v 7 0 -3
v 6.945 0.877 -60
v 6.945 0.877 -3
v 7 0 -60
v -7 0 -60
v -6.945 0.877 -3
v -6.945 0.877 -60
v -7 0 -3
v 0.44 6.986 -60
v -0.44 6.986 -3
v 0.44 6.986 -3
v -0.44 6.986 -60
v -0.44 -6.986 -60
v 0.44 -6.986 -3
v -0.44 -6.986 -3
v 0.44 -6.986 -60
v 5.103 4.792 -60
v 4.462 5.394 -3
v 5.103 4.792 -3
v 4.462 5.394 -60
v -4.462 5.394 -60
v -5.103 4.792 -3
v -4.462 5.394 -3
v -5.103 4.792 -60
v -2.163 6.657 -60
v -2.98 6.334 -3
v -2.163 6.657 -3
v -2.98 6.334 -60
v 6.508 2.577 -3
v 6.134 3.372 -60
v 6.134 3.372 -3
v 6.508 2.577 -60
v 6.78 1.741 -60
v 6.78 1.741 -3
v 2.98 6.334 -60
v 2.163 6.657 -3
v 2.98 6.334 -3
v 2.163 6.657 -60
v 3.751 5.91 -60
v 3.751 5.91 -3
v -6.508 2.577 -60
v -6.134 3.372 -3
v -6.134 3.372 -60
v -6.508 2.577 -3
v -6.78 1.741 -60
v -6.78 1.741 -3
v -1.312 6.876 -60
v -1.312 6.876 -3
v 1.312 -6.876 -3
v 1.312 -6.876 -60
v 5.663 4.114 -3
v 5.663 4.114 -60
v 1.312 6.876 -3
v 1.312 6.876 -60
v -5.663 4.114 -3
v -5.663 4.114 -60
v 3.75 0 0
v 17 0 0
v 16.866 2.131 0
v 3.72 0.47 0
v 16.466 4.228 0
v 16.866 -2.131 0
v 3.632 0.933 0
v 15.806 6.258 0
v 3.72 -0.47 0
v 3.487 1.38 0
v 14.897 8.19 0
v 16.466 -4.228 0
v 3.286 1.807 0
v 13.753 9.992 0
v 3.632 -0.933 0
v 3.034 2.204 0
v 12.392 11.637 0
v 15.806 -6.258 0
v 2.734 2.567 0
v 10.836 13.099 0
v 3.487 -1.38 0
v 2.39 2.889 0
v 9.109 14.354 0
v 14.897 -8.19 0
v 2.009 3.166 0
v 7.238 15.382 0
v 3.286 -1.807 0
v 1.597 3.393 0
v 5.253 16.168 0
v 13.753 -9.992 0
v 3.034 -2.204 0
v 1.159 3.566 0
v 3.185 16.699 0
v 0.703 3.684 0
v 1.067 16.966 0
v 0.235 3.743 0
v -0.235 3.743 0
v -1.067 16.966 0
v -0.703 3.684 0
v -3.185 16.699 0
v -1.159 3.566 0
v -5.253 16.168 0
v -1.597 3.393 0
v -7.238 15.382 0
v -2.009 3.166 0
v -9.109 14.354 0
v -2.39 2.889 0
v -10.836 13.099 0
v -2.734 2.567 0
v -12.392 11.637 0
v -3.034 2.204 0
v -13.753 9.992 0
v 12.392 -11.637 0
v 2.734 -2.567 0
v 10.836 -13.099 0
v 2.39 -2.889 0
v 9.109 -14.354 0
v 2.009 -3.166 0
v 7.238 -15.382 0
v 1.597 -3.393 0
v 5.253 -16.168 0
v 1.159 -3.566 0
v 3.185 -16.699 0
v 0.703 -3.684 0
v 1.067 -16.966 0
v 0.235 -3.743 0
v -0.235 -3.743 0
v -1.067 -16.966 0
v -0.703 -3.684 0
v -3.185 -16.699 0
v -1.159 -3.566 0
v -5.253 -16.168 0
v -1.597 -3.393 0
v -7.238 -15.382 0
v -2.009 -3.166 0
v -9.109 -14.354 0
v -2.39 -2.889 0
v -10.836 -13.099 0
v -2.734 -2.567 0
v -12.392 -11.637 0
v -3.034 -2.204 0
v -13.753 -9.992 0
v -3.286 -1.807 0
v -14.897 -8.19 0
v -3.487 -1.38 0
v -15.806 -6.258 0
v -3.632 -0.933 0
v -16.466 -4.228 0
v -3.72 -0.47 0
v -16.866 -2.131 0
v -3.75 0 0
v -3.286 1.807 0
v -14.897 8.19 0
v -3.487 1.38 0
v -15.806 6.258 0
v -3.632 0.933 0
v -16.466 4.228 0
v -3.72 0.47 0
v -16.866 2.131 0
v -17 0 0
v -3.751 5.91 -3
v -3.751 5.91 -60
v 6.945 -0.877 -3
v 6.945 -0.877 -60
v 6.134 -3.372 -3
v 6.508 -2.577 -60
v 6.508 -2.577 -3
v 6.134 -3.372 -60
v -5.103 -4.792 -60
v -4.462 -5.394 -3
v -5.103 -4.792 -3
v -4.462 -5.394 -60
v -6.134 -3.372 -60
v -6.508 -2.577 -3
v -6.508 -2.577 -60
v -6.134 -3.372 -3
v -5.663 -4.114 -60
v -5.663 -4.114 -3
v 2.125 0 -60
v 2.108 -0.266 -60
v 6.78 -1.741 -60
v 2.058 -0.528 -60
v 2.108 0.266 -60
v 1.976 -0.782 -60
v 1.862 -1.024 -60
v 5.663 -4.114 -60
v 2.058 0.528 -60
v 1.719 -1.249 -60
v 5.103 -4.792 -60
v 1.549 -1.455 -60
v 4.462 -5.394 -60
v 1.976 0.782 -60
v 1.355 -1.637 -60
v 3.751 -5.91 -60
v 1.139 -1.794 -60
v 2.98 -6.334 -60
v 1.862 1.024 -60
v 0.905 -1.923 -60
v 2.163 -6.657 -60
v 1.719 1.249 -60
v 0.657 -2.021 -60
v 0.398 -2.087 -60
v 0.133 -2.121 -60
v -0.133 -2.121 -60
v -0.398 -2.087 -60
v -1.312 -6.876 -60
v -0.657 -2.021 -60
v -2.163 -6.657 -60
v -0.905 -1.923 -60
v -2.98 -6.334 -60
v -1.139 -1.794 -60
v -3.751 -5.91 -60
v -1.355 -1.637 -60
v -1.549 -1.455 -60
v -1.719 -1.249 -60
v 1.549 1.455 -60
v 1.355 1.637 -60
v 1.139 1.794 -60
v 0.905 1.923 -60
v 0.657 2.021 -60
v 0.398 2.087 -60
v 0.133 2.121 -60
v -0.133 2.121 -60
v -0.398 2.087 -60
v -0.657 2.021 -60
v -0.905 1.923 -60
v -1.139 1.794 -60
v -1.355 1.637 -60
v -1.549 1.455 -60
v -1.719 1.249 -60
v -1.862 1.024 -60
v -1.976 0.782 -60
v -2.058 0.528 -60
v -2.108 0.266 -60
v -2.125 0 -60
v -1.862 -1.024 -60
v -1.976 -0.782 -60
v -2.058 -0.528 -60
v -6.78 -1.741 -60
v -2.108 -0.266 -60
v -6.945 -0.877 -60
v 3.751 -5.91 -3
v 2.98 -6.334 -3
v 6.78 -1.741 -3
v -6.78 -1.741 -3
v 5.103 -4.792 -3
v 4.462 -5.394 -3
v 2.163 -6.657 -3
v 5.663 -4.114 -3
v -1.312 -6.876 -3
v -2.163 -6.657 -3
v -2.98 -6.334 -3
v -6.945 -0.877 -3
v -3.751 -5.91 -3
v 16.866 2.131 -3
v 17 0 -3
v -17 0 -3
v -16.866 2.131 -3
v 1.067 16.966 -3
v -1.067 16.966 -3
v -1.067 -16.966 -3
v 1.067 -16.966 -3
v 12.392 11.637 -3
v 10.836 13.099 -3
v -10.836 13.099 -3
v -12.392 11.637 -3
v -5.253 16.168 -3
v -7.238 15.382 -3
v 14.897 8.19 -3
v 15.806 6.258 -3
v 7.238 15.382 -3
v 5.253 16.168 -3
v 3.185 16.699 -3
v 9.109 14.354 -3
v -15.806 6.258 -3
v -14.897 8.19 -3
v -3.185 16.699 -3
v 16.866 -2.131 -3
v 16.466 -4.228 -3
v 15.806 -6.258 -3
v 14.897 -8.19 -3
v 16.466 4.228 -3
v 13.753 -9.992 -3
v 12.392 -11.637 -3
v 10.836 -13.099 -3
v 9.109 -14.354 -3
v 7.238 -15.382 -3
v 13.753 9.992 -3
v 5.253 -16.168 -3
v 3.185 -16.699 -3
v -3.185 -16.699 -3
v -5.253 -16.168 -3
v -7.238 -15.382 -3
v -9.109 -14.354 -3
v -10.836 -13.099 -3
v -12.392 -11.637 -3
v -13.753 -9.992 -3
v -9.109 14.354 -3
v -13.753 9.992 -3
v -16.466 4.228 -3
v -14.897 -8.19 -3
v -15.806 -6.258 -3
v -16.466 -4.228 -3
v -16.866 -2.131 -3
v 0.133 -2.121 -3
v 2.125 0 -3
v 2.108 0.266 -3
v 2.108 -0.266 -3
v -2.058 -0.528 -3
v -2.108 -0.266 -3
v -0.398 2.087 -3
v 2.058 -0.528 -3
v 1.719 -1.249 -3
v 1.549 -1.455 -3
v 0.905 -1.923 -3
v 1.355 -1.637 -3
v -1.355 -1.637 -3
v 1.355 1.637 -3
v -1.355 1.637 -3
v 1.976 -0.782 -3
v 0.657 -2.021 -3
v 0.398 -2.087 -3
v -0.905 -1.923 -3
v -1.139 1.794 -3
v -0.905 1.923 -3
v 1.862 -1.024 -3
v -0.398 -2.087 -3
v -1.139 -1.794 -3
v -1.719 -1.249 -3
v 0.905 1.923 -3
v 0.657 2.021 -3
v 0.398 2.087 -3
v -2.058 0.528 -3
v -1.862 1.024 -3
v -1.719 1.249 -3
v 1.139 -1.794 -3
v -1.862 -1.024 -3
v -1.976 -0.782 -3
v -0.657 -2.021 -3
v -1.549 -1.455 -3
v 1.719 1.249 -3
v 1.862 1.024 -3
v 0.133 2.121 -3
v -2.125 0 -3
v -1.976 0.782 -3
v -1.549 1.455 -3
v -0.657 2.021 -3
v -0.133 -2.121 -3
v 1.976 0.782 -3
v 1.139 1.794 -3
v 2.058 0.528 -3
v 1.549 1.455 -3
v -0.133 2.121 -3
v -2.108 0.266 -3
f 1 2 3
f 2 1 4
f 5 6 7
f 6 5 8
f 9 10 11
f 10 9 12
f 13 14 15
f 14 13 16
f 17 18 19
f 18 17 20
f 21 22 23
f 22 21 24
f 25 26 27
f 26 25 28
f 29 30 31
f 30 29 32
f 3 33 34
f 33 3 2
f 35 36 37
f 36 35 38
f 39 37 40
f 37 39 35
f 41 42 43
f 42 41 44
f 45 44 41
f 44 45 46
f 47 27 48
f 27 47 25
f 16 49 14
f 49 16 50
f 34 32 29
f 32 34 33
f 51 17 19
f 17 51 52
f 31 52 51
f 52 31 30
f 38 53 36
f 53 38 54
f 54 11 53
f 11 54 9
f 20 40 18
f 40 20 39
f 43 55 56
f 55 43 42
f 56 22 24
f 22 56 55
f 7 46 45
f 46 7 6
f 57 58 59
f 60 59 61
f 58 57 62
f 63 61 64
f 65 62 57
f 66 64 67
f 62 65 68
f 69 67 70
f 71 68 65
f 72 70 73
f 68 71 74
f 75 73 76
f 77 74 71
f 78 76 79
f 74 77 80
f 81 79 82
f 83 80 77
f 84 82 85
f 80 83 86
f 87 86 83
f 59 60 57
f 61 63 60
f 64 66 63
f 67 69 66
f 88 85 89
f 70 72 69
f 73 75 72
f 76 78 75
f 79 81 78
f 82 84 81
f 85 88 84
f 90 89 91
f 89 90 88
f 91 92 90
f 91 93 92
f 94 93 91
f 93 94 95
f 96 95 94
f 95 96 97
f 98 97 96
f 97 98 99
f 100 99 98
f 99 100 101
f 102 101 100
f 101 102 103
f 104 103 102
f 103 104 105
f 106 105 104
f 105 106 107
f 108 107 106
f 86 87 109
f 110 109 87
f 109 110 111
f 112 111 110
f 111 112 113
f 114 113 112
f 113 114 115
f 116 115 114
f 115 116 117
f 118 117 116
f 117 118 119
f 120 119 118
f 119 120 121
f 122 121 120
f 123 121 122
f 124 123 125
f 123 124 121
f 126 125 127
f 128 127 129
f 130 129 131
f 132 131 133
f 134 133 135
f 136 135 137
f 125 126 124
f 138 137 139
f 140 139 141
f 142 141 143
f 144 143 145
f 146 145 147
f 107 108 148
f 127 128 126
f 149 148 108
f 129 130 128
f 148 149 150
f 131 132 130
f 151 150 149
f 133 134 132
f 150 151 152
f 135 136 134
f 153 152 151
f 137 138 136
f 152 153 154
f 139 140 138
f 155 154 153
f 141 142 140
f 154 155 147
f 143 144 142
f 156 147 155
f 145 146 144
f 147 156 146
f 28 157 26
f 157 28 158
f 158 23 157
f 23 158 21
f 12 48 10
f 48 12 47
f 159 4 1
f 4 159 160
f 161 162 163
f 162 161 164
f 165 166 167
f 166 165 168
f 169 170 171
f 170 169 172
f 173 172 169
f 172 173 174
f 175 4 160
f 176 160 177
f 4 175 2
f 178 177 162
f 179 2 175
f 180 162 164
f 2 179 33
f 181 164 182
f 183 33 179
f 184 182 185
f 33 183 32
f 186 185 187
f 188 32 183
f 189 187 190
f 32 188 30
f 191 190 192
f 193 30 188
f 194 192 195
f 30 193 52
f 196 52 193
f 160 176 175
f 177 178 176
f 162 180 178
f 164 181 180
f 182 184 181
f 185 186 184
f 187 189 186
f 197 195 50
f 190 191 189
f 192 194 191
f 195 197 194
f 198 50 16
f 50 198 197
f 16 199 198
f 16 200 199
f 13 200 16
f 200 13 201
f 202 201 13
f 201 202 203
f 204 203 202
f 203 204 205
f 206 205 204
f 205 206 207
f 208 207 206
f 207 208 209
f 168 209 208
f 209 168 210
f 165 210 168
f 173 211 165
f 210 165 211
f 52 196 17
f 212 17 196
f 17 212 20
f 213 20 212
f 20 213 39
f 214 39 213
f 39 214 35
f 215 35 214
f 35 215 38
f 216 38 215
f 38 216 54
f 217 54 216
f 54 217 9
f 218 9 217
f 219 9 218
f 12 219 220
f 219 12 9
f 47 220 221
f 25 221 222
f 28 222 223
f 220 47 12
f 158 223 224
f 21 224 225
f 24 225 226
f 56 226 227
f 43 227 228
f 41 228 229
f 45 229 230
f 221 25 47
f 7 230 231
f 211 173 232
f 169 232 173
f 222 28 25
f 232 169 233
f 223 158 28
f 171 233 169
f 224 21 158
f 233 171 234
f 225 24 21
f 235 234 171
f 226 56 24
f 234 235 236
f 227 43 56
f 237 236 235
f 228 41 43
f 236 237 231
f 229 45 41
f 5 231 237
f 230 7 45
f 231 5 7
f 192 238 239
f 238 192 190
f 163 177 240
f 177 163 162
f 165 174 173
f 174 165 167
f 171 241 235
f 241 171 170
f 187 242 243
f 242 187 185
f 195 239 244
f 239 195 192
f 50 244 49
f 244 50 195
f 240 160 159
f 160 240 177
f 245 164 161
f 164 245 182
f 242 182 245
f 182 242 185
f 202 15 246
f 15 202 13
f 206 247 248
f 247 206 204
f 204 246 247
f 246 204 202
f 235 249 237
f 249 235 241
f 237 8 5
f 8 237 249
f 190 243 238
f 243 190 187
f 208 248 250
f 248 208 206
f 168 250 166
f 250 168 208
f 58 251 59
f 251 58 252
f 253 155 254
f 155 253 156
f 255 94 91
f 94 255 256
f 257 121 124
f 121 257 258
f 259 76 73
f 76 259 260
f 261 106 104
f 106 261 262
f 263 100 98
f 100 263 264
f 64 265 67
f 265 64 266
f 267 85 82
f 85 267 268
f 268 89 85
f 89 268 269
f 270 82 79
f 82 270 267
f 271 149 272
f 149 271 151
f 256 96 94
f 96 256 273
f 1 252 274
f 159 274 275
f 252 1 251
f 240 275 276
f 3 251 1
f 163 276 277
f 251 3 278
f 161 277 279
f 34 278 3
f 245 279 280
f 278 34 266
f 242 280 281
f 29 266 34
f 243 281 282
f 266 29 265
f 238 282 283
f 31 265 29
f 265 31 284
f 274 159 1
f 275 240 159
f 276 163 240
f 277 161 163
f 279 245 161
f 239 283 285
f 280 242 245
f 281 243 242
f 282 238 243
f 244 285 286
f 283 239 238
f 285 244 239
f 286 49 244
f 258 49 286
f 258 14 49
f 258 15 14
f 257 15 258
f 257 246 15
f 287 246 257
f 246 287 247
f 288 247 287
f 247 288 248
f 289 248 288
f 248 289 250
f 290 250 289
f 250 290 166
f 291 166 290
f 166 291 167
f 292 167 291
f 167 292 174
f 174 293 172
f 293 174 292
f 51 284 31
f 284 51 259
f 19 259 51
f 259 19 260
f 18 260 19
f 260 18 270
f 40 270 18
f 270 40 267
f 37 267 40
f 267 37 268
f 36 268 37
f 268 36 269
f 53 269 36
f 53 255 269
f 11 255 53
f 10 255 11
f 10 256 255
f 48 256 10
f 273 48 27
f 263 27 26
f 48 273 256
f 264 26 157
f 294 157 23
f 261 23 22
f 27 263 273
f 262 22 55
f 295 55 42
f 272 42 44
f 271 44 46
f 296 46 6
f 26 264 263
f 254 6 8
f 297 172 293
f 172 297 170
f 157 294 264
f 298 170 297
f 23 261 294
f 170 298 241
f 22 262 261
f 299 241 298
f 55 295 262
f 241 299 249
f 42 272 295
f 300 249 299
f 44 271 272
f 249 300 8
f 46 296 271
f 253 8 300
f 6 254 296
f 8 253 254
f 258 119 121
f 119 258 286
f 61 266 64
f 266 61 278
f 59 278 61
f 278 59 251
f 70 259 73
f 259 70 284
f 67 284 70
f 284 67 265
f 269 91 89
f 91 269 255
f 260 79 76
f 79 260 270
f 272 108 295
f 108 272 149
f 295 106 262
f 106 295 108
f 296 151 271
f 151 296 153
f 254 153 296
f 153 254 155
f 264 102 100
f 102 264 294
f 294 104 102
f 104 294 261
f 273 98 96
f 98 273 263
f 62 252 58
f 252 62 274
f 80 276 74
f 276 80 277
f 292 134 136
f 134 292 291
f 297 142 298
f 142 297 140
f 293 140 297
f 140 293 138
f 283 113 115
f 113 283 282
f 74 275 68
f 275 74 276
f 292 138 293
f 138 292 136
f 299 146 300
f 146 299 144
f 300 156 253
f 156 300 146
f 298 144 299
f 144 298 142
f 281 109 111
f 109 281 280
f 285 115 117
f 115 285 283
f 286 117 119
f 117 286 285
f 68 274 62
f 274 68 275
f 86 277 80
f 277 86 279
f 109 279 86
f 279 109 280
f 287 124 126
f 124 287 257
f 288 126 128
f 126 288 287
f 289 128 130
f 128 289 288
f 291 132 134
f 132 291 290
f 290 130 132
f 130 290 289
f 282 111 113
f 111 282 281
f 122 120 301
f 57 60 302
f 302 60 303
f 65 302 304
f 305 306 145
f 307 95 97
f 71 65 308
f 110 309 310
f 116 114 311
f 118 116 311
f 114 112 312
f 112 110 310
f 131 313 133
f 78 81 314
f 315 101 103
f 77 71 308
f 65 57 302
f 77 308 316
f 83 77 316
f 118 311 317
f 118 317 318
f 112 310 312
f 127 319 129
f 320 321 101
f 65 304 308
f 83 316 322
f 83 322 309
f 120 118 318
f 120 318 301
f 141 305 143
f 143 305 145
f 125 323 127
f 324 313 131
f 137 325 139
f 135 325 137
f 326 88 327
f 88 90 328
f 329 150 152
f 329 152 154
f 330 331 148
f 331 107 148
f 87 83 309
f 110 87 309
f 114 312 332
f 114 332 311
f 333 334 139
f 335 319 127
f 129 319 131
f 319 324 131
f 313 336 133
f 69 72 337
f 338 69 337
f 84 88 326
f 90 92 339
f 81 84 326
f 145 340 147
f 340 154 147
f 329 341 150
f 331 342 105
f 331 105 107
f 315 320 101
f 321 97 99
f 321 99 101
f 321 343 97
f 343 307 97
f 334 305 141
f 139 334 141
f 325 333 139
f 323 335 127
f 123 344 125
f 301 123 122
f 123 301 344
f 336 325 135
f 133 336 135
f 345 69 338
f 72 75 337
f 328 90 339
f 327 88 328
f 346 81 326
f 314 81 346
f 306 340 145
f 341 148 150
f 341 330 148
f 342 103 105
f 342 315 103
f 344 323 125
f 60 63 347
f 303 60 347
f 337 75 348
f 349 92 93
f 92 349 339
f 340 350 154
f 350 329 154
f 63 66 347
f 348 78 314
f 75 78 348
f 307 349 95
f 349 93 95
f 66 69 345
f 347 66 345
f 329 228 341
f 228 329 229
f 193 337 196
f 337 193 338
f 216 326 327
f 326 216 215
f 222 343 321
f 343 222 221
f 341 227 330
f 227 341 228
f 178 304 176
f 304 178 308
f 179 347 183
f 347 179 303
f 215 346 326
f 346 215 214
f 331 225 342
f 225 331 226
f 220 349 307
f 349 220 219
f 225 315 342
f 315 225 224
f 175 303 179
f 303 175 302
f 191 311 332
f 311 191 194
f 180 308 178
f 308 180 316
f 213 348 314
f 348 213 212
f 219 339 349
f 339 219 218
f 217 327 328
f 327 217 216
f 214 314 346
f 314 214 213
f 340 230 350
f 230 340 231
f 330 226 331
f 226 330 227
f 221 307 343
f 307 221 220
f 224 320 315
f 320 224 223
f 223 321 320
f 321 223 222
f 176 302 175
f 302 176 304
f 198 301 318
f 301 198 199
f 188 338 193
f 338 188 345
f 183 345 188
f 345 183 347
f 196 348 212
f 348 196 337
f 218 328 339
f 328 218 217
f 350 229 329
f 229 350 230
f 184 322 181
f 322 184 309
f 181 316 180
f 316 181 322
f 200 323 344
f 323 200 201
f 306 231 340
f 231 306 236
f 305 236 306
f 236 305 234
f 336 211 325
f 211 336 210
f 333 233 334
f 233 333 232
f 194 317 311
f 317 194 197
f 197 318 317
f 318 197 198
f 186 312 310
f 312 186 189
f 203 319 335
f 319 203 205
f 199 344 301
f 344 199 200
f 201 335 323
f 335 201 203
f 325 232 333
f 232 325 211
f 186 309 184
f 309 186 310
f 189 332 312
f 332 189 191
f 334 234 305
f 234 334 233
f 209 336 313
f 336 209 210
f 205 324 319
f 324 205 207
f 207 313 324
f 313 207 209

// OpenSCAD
$fn = 50;


difference() {
	union() {
		translate(v = [0, 0, -60.0000000000]) {
			cylinder(h = 60, r = 7.0000000000);
		}
		translate(v = [0, 0, -3.0000000000]) {
			cylinder(h = 3, r = 17.0000000000);
		}
	}
	union() {
		translate(v = [0, 0, 0]) {
			rotate(a = [0, 0, 0]) {
				difference() {
					union() {
						#translate(v = [0, 0, -60.0000000000]) {
							cylinder(h = 60, r = 2.0000000000);
						}
						#translate(v = [0, 0, -3]) {
							cylinder(h = 3, r1 = 2.1250000000, r2 = 3.7500000000);
						}
						#translate(v = [0, 0, -60.0000000000]) {
							cylinder(h = 60, r = 2.1250000000);
						}
						#translate(v = [0, 0, -60.0000000000]) {
							cylinder(h = 60, r = 2.0000000000);
						}
					}
					union();
				}
			}
		}
	}
}
